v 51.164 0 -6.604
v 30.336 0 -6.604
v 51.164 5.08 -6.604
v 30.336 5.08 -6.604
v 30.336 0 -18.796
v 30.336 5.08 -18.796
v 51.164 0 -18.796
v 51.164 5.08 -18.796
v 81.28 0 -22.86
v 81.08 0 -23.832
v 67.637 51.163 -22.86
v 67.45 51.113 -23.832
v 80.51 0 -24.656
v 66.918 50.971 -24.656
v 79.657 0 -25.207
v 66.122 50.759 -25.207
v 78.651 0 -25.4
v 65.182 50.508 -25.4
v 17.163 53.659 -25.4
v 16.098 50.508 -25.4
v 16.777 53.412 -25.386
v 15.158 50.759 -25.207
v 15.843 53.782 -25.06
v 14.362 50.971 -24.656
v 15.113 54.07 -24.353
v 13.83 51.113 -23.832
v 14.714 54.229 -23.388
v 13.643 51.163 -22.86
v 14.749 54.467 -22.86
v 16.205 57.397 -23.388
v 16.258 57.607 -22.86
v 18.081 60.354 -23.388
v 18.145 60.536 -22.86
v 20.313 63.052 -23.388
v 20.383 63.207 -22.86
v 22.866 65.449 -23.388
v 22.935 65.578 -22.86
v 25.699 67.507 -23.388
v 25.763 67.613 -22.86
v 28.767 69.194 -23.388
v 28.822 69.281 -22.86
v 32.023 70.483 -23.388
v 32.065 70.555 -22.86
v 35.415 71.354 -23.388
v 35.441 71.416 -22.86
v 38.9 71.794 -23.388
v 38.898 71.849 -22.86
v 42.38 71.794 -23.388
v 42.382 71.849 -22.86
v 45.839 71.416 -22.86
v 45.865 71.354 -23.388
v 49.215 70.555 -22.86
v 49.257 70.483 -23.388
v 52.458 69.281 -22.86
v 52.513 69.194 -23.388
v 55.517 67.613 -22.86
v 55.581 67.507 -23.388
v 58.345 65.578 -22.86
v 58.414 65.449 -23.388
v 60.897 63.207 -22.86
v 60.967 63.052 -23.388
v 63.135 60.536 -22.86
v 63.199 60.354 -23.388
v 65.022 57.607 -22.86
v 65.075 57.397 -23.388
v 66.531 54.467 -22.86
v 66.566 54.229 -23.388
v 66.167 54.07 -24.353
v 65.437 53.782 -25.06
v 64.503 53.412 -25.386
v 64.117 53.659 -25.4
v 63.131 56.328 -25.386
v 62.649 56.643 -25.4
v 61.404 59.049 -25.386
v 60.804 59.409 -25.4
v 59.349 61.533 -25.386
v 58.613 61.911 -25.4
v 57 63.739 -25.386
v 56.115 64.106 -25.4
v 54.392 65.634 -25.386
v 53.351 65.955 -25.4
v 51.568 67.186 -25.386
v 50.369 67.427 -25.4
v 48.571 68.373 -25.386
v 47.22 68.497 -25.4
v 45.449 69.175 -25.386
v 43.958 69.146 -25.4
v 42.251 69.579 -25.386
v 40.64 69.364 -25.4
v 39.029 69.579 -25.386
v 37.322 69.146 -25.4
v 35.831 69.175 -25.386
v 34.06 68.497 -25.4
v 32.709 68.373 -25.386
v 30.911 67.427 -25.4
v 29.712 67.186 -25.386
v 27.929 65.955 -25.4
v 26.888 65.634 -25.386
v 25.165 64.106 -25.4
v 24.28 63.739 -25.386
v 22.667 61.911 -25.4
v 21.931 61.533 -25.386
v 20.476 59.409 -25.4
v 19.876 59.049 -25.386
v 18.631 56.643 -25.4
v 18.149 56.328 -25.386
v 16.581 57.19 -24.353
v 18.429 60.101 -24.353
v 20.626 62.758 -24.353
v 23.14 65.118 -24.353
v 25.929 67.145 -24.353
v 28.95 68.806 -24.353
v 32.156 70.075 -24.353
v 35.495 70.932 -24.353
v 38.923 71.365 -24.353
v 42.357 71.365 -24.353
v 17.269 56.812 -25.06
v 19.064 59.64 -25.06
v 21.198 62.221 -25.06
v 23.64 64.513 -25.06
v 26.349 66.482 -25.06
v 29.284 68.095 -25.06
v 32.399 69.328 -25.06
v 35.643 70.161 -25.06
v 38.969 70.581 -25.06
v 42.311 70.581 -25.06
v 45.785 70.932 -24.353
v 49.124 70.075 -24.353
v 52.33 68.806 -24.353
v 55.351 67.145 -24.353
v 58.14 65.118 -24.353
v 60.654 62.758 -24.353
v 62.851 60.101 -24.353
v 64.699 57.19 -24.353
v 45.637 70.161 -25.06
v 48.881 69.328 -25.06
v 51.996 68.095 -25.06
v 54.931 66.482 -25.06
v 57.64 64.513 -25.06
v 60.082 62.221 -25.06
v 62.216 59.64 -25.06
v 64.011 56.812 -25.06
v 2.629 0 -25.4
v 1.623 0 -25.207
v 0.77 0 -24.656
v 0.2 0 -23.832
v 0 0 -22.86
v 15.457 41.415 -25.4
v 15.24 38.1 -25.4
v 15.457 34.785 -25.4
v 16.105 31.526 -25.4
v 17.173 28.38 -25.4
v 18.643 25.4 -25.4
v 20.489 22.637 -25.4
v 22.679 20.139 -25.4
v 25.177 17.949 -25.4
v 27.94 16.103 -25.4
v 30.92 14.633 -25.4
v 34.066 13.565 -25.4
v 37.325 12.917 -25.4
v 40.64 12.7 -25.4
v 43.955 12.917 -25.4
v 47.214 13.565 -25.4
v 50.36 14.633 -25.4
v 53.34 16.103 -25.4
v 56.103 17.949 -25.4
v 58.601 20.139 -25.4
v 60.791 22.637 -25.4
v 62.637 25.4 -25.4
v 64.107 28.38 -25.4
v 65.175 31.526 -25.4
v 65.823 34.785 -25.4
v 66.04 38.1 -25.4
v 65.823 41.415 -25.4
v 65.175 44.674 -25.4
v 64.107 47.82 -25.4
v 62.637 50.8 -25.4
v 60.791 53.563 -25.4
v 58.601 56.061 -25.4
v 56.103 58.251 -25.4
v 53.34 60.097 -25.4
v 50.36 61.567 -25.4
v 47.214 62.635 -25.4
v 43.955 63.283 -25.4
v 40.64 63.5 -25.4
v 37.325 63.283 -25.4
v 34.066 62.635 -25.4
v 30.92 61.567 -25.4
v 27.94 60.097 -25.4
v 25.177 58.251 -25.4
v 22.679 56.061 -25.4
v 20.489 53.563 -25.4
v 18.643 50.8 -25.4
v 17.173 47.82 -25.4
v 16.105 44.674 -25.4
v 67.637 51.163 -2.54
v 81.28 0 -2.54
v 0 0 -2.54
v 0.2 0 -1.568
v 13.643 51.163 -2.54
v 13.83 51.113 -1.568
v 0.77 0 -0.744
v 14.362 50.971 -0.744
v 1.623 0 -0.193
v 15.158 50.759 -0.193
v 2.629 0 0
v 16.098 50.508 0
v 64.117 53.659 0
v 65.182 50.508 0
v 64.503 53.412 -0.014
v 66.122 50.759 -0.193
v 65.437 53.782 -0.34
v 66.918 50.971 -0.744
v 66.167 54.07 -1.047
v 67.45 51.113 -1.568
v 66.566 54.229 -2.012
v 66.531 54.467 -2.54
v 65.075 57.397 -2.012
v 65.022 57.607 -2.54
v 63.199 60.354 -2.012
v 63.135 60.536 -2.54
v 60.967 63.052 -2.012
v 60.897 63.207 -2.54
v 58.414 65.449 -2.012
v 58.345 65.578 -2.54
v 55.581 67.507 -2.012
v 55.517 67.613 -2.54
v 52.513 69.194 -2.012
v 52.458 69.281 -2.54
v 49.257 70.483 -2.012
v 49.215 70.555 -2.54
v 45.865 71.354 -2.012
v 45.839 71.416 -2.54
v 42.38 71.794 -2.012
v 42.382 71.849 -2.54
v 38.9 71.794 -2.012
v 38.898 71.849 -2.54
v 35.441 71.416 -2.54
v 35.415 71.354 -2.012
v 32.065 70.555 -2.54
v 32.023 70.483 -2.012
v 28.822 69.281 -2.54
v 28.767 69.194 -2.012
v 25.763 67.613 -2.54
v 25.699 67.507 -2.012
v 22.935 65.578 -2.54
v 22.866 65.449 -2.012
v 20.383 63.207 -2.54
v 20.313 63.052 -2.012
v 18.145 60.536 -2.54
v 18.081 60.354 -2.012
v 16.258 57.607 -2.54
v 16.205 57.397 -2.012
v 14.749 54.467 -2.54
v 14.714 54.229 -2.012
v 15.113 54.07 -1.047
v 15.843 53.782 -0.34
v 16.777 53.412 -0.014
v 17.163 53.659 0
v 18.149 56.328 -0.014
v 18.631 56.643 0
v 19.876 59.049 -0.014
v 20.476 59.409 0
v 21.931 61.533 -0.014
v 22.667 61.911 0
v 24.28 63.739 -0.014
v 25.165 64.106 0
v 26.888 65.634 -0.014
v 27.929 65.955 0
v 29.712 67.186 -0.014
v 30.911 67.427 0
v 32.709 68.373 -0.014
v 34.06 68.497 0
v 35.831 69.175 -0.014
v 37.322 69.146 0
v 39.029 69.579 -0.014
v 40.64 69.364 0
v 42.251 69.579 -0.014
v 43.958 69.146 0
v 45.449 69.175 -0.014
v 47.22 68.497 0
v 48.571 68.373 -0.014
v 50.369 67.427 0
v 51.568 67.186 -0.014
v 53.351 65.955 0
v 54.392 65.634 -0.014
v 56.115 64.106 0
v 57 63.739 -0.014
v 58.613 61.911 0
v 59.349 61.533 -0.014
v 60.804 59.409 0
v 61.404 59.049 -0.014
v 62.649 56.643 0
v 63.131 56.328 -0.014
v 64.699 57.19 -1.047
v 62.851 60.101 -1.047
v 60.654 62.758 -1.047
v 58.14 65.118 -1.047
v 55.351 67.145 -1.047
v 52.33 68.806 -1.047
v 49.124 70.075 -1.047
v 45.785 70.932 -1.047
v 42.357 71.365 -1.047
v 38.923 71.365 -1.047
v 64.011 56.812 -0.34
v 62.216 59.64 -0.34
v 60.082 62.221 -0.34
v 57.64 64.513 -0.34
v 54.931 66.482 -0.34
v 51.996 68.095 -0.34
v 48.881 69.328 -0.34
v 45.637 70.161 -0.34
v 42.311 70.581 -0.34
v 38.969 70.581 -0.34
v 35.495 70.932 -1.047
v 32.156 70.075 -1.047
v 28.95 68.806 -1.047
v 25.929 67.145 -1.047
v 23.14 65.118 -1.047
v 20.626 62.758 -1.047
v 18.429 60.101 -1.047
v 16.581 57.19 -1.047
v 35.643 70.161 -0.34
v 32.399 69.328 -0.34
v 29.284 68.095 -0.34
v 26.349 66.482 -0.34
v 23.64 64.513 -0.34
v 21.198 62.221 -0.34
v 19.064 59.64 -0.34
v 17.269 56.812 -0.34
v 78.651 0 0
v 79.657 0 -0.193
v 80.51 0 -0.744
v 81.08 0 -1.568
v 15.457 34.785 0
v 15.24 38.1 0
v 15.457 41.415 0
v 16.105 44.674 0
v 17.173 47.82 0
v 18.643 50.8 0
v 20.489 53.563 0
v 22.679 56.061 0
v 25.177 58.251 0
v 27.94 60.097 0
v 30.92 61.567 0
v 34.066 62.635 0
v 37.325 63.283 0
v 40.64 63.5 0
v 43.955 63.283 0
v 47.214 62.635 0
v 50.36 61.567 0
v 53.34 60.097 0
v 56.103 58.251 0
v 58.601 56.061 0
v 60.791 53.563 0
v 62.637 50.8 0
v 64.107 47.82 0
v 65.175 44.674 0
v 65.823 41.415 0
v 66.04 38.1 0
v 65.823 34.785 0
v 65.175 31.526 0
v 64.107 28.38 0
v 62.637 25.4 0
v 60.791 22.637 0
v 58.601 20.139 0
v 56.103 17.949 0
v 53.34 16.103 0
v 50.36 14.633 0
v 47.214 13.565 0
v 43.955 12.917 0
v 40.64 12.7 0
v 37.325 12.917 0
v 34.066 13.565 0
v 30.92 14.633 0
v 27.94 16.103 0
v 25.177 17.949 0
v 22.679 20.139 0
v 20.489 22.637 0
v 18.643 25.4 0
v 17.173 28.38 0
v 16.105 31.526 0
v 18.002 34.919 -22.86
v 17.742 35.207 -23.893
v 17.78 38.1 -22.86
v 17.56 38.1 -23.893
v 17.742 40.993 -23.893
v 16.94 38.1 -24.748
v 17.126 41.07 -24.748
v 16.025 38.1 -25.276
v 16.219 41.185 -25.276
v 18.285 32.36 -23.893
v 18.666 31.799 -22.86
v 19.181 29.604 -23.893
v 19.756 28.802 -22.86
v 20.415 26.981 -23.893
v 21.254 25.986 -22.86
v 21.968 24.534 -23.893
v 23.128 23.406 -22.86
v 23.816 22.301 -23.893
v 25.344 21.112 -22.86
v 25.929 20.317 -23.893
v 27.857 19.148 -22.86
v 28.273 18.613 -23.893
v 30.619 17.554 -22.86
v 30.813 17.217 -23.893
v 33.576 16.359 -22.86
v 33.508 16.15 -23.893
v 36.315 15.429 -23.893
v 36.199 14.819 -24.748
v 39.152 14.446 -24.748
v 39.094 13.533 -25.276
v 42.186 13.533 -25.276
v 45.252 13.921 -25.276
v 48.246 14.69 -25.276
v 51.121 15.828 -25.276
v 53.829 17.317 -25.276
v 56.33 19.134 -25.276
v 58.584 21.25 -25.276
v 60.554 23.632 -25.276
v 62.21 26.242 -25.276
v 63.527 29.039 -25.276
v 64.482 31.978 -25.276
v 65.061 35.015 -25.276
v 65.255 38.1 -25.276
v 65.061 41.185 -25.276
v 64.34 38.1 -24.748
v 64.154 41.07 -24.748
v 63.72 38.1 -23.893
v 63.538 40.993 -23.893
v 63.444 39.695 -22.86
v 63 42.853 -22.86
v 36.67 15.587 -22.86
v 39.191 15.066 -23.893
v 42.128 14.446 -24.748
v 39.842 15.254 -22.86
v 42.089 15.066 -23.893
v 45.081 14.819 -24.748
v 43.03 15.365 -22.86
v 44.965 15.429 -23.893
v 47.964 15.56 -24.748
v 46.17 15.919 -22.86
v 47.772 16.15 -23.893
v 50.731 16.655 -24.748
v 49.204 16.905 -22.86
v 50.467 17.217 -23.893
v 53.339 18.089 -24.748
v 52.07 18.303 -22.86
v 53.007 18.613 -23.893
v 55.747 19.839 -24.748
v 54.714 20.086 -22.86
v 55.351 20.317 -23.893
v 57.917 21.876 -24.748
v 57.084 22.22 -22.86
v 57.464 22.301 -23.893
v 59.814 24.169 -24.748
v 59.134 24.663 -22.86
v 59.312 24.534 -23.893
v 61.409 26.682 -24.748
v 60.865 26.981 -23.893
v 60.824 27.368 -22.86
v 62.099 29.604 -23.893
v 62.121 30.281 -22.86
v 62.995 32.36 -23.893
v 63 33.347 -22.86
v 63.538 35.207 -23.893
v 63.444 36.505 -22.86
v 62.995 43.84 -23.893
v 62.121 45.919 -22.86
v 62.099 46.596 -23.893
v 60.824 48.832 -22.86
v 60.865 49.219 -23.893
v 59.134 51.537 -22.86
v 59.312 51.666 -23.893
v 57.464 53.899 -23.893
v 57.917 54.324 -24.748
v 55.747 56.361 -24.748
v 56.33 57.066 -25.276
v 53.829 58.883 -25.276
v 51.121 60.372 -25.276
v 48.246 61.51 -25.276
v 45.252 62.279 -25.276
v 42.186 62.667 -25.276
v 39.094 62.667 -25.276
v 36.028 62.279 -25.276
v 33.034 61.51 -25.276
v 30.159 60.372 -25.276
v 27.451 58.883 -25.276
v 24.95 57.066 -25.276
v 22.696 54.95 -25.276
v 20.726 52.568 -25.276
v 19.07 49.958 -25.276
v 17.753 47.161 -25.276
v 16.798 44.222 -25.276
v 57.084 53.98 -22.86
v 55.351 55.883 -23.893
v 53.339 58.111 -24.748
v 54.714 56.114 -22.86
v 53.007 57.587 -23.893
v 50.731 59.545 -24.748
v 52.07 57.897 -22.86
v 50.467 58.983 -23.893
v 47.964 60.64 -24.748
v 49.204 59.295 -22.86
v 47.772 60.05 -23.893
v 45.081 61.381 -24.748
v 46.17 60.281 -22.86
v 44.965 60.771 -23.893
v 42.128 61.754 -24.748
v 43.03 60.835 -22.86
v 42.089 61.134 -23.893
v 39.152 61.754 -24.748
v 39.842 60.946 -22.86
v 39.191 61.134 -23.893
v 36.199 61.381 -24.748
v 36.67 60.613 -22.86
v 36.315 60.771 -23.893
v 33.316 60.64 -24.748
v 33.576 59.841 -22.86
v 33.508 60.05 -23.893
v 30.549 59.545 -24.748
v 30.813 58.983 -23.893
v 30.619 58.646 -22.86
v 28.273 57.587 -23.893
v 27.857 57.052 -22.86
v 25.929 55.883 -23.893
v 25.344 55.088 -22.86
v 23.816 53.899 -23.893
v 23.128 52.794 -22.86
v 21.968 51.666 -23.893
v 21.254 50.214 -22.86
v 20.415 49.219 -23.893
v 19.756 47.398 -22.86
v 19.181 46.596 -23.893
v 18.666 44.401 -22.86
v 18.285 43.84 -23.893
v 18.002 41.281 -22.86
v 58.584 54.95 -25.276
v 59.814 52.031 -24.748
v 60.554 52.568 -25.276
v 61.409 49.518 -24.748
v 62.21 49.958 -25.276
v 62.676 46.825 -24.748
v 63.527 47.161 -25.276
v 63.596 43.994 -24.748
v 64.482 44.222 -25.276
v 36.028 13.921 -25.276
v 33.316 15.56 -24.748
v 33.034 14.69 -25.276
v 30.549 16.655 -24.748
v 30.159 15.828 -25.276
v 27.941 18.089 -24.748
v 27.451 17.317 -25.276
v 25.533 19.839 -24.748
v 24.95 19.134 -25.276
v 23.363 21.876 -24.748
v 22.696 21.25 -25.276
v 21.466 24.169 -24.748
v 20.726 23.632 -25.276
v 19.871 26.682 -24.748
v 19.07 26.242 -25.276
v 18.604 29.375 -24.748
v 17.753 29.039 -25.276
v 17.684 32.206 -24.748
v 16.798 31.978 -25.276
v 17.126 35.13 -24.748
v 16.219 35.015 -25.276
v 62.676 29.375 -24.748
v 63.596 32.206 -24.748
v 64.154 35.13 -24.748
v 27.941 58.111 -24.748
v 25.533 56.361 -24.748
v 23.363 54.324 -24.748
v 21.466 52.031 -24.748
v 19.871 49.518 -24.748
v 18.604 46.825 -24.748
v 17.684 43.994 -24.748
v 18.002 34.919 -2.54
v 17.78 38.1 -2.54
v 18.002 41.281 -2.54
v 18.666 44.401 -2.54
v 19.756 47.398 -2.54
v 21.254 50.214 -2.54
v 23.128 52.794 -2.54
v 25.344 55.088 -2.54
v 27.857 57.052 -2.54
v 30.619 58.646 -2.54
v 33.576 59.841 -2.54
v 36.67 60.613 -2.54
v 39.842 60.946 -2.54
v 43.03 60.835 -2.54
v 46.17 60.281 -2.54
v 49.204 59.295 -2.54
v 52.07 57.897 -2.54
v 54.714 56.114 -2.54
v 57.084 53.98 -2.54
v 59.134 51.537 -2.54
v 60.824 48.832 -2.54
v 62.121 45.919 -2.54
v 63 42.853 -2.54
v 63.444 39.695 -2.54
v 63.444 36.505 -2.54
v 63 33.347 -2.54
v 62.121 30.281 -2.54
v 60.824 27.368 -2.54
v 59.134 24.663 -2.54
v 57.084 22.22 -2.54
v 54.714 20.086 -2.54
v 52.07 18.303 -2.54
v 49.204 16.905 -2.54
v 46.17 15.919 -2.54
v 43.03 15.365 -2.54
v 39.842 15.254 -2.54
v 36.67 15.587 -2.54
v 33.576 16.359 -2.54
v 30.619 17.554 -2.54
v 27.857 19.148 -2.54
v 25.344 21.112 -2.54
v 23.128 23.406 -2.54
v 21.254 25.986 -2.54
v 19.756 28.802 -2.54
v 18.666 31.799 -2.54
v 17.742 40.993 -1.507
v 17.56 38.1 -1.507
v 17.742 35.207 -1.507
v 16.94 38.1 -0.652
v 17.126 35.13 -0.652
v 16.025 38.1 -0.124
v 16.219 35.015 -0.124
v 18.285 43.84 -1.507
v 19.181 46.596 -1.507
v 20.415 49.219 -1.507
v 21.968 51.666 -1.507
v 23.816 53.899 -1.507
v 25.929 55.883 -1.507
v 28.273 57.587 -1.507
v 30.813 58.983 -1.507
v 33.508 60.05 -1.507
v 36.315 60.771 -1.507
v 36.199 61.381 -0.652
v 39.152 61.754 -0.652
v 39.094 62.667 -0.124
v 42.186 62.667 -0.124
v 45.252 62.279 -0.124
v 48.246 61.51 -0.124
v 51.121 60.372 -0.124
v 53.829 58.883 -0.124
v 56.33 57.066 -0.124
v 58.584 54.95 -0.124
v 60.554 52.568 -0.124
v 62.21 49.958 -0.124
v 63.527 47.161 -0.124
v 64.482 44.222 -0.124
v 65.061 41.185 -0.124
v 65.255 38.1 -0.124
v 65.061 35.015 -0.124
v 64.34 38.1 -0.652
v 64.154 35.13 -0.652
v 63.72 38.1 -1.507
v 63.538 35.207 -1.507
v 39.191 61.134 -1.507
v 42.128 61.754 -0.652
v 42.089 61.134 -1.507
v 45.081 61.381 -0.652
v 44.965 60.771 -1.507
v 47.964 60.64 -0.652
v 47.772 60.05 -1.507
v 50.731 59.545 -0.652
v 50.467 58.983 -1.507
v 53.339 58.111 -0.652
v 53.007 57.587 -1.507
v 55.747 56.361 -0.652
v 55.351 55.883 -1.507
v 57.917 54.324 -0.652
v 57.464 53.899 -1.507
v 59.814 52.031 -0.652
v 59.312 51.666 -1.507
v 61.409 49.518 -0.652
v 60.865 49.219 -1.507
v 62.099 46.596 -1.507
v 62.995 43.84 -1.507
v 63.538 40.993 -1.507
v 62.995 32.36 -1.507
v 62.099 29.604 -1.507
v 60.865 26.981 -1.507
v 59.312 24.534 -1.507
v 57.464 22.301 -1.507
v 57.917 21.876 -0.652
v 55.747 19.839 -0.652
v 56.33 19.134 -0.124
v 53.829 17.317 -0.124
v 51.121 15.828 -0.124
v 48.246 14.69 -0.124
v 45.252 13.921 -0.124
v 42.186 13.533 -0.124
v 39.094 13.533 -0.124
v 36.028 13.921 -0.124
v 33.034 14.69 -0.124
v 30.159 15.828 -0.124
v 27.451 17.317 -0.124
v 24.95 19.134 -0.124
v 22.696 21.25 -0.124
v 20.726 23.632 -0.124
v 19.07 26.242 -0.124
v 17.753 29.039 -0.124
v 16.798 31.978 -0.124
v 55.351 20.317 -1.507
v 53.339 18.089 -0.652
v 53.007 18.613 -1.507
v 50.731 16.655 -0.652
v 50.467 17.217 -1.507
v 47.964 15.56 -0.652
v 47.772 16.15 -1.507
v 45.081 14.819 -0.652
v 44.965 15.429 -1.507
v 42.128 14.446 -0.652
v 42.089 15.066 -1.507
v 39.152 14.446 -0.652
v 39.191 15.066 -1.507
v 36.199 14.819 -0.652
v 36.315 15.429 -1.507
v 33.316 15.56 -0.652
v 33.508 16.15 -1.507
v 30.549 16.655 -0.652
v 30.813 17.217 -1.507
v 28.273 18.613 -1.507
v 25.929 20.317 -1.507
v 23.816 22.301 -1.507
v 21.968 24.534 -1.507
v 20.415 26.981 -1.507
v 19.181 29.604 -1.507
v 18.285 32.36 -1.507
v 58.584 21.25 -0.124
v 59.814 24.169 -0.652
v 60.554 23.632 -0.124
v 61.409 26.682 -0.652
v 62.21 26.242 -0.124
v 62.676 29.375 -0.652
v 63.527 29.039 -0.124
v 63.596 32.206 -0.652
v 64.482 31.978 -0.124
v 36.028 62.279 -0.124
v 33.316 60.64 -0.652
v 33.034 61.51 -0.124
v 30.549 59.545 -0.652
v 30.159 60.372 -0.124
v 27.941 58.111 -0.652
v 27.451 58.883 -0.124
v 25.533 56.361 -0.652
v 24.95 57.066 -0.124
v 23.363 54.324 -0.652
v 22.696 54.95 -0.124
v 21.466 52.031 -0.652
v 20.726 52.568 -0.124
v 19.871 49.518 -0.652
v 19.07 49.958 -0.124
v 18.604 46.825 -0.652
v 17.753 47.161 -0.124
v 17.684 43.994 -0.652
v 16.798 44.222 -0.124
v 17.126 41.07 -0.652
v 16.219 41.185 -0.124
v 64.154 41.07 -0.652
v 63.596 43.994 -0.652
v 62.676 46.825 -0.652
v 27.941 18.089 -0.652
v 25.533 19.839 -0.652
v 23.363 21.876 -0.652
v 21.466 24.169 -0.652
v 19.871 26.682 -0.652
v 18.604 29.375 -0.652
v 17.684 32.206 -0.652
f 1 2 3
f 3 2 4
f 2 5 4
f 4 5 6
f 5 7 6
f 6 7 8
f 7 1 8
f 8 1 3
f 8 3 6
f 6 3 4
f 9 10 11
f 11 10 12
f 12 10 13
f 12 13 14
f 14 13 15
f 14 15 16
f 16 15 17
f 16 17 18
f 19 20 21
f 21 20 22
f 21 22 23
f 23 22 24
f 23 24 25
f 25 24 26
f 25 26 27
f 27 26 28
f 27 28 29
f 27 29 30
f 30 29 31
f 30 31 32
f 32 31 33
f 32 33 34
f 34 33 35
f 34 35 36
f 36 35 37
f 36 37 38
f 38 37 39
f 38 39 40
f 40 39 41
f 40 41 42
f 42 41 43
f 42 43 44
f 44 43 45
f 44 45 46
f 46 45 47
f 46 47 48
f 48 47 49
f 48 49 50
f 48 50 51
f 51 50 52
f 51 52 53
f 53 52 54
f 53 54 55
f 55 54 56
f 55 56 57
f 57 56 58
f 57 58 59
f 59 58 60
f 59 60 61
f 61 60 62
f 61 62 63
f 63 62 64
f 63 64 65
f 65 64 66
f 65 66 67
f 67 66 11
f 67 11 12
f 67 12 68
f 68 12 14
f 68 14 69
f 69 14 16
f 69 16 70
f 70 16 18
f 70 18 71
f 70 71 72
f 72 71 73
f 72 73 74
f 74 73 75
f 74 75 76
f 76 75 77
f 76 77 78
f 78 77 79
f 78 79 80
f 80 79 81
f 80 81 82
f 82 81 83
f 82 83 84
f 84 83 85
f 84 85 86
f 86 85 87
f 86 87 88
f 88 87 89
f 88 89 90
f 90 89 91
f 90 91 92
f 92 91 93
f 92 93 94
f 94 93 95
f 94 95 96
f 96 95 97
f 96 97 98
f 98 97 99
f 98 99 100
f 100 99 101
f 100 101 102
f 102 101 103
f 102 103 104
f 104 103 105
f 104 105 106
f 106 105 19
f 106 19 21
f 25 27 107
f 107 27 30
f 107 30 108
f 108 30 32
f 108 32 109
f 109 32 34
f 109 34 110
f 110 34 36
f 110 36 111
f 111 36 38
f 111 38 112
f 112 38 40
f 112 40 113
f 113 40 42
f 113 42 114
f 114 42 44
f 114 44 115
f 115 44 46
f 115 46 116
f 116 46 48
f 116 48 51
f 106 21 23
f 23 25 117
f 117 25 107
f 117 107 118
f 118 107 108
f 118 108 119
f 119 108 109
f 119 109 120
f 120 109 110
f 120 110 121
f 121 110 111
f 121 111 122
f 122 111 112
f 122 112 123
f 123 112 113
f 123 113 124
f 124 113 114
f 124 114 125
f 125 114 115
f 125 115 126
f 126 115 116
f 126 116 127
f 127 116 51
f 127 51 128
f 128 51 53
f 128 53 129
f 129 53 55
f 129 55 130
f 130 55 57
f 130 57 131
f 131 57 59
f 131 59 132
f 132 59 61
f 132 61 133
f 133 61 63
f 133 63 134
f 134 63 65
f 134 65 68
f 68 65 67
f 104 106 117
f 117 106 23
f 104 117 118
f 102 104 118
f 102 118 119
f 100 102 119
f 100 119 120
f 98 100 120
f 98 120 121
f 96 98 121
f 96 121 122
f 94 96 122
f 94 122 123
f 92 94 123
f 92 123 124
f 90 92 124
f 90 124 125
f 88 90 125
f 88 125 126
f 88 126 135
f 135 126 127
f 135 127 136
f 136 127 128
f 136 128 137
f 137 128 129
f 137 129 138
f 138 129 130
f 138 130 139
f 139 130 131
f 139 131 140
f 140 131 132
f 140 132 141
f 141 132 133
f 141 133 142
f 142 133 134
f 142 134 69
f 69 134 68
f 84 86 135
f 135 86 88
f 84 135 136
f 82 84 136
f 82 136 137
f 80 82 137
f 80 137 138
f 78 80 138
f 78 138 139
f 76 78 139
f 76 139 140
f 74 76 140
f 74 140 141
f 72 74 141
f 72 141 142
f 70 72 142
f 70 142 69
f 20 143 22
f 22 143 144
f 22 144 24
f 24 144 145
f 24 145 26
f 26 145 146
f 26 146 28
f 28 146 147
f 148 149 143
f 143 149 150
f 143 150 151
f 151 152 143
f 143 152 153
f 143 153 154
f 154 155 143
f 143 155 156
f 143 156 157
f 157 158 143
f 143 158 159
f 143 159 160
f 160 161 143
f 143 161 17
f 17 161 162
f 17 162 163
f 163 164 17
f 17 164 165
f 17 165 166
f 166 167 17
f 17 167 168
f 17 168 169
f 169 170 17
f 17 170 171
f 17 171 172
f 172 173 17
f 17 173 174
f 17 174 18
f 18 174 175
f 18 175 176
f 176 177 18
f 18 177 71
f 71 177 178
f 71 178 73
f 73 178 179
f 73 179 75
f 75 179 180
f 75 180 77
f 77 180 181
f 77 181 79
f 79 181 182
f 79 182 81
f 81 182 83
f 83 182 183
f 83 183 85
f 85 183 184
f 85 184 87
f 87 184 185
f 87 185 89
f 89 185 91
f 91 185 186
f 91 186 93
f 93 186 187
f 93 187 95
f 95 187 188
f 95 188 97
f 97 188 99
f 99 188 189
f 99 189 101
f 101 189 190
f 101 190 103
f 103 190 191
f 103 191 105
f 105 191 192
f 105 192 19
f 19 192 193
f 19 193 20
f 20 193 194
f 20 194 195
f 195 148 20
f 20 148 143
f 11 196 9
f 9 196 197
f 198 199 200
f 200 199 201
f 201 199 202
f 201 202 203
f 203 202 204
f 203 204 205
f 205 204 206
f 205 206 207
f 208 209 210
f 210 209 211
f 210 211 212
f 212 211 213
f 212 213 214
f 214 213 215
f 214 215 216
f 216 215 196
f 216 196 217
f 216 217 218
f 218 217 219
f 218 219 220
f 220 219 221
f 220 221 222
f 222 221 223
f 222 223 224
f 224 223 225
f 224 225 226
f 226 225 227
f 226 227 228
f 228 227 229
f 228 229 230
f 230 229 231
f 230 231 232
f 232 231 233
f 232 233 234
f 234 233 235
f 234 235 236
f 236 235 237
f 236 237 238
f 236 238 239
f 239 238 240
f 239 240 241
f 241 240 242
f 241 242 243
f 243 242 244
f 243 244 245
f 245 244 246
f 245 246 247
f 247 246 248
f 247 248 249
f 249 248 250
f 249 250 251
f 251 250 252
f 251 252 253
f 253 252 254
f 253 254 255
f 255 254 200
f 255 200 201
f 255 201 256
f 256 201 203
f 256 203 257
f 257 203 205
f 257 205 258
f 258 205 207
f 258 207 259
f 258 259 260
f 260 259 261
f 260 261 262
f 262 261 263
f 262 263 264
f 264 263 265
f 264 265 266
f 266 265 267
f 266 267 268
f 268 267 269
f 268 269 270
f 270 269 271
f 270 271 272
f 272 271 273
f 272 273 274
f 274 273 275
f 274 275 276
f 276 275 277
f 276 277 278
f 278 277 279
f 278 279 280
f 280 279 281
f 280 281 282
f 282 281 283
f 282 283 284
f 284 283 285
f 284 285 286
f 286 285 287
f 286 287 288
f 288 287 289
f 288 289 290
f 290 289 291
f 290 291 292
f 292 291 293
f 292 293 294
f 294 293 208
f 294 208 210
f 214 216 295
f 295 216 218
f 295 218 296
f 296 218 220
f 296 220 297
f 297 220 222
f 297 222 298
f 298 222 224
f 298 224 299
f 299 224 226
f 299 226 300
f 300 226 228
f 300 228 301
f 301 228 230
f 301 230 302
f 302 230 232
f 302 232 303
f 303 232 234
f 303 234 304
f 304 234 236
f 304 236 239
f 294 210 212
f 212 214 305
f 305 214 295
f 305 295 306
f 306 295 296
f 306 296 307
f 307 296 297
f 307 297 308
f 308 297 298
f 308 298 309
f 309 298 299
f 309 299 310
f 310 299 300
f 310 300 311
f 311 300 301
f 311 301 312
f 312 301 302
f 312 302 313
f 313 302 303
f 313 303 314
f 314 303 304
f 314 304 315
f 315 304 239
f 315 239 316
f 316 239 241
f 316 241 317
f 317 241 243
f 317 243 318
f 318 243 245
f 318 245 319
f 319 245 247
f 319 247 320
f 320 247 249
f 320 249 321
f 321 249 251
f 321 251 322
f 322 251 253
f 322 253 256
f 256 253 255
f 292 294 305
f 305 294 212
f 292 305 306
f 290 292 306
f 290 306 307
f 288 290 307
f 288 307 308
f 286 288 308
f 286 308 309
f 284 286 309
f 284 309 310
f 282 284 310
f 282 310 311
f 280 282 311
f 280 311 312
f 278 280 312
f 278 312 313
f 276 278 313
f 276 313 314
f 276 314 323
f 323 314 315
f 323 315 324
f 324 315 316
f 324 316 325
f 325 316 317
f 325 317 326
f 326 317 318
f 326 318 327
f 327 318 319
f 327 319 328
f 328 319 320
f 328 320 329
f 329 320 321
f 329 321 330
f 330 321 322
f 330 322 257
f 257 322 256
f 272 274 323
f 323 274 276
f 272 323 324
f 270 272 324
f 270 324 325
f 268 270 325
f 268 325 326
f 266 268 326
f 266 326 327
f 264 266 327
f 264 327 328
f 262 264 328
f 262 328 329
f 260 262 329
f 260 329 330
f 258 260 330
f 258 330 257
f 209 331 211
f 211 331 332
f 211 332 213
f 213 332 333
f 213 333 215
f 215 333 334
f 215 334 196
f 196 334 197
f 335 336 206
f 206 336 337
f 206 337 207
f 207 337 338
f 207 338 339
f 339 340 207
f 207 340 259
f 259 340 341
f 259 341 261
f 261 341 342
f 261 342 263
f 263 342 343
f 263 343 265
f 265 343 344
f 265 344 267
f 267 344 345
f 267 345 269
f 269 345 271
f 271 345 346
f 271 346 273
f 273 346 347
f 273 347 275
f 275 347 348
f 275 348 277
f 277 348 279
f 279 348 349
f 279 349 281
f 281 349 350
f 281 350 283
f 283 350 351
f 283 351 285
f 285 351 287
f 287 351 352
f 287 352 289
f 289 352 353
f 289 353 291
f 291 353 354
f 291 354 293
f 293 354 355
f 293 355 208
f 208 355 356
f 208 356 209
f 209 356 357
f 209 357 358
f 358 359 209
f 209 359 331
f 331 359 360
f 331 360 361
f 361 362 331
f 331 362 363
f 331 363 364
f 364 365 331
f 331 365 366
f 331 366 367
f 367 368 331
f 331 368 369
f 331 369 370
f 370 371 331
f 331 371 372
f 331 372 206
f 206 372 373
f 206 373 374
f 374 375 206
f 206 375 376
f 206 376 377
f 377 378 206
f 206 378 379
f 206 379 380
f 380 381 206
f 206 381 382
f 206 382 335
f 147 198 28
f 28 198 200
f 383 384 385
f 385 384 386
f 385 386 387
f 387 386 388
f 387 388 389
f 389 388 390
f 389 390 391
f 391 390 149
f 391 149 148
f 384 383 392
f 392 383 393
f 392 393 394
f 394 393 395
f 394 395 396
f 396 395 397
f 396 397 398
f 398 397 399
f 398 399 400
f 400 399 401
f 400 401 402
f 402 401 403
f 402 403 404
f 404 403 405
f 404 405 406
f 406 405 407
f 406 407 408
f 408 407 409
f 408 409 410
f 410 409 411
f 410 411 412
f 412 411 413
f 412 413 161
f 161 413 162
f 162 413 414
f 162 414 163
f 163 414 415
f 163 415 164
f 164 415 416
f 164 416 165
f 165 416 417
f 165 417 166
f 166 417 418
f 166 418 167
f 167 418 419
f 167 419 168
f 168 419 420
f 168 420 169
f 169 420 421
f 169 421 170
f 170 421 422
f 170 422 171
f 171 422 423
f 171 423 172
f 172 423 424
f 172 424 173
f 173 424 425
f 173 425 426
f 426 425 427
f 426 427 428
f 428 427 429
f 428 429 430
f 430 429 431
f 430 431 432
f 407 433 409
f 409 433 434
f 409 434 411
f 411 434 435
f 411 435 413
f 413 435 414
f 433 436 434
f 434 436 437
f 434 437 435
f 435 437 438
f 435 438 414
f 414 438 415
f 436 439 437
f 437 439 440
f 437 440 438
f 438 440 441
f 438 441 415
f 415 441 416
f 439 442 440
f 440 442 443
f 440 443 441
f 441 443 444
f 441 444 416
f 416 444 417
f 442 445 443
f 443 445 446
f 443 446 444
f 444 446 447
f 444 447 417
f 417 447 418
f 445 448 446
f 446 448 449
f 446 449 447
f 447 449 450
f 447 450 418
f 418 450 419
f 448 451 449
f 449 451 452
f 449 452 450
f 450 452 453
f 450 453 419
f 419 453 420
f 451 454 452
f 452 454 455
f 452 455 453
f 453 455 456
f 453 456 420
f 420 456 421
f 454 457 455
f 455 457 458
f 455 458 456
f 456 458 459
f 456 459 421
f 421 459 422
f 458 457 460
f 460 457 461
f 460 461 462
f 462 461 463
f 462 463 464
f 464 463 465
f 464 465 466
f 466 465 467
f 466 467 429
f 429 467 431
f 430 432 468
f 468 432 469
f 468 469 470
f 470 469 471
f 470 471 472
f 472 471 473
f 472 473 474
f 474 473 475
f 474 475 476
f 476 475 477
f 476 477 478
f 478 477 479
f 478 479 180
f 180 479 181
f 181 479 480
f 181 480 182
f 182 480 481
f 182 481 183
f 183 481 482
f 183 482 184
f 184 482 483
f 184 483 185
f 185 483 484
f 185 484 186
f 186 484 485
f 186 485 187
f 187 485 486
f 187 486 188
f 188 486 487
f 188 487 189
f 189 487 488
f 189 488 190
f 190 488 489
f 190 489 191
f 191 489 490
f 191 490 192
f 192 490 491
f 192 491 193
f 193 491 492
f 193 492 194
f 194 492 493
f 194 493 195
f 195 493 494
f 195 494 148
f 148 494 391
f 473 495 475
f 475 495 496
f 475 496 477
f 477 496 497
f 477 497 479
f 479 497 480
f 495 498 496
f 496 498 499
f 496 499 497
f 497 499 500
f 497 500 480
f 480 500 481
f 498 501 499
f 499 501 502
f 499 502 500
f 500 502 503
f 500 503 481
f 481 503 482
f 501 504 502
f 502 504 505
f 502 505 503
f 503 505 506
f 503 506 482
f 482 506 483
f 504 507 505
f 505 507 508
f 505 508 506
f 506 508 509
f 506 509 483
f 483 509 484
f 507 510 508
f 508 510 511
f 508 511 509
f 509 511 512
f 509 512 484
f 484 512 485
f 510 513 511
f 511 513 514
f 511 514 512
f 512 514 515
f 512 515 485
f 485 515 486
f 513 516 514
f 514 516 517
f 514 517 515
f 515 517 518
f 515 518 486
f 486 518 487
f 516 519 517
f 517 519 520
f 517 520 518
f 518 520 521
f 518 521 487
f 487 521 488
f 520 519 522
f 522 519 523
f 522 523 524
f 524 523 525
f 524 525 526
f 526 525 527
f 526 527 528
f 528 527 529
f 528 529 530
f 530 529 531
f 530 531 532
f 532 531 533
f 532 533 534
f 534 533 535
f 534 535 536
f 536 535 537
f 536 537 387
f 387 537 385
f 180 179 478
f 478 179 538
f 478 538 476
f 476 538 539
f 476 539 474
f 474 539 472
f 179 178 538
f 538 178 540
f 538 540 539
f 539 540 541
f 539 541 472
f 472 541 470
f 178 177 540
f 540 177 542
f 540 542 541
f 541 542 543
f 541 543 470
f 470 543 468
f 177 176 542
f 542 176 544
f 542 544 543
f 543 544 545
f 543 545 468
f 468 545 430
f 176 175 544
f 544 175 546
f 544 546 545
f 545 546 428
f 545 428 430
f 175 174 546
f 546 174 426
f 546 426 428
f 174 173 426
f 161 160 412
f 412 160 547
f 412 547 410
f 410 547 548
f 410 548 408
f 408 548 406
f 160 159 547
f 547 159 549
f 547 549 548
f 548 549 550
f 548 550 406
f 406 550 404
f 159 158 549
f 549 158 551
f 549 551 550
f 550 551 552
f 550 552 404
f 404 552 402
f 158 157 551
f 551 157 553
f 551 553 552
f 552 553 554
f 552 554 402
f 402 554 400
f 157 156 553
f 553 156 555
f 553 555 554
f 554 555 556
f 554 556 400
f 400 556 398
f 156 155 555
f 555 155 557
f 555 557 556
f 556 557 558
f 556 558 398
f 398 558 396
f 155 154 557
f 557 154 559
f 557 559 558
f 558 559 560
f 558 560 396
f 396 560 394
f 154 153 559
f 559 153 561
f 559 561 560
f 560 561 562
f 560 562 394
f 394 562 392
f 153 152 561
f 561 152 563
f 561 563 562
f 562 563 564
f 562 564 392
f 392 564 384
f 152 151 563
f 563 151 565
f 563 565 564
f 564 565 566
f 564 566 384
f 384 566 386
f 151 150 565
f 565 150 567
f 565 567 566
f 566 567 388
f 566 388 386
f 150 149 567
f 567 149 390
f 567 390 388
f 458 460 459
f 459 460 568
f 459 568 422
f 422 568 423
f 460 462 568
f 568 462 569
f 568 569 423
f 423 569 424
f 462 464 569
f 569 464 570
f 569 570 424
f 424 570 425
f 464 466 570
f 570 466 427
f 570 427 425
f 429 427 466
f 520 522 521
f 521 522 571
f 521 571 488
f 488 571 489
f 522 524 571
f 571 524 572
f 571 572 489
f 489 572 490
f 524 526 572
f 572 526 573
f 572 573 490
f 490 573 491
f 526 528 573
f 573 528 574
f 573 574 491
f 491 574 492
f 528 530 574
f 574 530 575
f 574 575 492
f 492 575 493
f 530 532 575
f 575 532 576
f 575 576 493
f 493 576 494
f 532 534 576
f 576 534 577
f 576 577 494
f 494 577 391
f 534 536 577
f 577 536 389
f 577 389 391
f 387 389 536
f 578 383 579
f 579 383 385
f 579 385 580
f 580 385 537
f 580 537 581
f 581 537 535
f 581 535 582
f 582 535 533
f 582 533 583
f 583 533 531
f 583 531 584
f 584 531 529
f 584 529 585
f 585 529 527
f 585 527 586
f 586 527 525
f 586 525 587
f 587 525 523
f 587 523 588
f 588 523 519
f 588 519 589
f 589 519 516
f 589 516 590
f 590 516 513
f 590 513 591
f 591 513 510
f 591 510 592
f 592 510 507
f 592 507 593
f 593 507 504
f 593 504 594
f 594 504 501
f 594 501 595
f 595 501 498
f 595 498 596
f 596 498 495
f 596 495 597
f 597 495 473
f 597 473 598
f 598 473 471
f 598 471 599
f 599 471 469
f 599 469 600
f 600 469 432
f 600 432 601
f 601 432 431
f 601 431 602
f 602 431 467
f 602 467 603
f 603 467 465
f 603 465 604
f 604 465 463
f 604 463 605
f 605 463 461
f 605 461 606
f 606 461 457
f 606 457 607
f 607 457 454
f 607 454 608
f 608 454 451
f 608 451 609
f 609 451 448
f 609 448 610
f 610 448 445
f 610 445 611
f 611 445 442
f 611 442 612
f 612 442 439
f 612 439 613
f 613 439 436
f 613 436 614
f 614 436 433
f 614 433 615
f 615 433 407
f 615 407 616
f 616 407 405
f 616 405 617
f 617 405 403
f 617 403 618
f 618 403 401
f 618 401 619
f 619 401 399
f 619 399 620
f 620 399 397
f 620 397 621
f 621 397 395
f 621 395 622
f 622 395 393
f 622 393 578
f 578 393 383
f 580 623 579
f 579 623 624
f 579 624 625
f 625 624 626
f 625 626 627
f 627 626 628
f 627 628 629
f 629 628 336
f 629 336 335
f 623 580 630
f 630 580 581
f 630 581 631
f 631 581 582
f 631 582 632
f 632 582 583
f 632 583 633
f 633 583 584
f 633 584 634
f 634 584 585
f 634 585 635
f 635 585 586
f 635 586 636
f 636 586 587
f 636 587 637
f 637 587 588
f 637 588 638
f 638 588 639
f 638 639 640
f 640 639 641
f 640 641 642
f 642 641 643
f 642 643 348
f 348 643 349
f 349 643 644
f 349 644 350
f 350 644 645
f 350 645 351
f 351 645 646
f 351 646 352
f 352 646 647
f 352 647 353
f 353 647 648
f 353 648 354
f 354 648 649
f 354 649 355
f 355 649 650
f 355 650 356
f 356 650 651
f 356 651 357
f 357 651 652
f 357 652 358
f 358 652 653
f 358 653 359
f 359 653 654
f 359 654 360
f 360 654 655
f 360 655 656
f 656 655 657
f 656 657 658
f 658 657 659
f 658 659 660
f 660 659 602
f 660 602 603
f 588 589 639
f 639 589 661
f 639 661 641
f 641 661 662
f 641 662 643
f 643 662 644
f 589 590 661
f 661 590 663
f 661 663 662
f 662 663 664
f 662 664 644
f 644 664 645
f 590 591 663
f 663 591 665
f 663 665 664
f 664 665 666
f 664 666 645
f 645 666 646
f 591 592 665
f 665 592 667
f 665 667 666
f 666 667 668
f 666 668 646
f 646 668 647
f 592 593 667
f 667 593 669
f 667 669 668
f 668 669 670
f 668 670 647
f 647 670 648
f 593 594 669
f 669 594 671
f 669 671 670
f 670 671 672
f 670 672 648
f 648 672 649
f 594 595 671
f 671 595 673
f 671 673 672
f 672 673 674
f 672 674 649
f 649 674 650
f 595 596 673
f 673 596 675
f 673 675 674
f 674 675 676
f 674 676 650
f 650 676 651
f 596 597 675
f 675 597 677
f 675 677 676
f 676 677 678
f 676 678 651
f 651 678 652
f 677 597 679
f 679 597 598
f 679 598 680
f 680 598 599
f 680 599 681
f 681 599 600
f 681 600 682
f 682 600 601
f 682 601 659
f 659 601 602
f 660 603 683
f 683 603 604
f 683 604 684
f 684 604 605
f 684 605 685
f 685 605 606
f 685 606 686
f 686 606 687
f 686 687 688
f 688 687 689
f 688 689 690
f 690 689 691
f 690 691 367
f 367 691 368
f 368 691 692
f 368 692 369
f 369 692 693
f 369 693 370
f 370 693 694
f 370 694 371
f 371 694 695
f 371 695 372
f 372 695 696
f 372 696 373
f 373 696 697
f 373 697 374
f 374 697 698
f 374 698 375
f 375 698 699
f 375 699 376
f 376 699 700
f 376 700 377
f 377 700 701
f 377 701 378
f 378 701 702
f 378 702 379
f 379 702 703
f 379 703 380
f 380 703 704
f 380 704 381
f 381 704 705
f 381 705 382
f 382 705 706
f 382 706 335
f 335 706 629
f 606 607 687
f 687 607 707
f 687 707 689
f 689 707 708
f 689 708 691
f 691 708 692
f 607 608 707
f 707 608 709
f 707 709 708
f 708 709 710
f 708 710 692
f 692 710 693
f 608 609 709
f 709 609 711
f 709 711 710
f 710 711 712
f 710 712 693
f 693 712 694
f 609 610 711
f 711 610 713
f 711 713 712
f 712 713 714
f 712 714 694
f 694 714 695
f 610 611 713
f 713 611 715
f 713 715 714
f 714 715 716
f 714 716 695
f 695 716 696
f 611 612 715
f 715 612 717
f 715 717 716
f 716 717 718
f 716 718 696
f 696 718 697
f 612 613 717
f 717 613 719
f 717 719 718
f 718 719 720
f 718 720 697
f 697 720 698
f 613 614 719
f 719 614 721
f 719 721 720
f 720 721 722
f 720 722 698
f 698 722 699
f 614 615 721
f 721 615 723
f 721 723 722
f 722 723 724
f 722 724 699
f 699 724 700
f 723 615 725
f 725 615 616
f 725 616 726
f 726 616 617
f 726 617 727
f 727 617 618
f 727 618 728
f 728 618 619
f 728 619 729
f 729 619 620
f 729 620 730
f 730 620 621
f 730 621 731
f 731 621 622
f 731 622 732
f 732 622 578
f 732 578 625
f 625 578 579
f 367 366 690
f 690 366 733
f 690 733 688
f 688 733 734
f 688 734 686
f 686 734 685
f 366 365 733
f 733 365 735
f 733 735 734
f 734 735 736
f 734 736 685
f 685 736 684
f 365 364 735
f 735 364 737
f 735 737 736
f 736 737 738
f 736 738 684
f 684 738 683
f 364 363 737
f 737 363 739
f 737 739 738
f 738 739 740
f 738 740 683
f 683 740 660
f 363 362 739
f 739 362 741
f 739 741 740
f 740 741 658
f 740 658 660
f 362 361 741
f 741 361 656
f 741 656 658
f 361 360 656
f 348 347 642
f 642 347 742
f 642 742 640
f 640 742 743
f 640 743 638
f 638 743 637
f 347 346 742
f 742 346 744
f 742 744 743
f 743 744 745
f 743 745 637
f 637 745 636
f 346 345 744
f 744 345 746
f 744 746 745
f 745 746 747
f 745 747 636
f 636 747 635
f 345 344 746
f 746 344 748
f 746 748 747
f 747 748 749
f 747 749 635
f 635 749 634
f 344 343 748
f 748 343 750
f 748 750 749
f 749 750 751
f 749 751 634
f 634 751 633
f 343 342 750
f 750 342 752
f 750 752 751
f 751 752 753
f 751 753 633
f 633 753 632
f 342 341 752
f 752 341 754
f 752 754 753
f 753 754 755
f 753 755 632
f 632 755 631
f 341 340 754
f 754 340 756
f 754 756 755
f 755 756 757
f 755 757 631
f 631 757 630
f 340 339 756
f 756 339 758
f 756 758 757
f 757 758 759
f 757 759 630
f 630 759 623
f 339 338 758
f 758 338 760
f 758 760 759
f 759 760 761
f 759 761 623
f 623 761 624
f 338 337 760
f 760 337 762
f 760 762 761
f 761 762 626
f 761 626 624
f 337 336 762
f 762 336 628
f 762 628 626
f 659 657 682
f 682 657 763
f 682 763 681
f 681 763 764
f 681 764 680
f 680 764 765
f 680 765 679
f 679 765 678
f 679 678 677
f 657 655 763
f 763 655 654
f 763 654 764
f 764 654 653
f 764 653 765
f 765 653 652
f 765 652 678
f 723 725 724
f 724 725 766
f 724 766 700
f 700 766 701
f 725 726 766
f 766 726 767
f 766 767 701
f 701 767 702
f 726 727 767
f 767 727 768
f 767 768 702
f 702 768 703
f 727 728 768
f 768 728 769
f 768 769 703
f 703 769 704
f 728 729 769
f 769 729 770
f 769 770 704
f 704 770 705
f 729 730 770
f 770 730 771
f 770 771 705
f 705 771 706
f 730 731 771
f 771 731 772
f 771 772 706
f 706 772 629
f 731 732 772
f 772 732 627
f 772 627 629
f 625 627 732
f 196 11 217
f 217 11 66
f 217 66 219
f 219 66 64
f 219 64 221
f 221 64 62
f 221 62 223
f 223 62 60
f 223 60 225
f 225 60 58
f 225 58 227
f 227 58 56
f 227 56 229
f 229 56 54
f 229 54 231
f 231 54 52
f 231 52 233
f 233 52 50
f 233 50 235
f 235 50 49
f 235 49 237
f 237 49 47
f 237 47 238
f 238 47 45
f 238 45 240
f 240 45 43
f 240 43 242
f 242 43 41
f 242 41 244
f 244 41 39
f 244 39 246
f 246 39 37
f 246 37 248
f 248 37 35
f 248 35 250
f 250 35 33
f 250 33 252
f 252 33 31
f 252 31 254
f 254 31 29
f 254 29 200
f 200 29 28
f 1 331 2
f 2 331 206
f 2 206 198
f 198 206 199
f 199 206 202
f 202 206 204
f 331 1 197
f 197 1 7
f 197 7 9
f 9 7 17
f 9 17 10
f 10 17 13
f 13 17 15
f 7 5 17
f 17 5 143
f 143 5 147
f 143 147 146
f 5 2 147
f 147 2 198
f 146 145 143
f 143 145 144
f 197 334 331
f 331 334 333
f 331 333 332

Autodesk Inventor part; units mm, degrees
ref_plane "YZ Plane" through (0, 0, 0) normal (1, 0, 0) x (0, 1, 0)
ref_plane "XZ Plane" through (0, 0, 0) normal (0, 1, 0) x (-1, 0, 0)
ref_plane "XY Plane" through (0, 0, 0) normal (0, 0, 1) x (1, 0, 0)
sketch "Sketch2" plane through (0, 0, 0) normal (0, 1, 0) x (-1, 0, 0)
  line L0 (0, 0) -> (-81.28, 0)
  line L1 (-81.28, 0) -> (-81.28, -25.4)
  line L2 (-81.28, -25.4) -> (0, -25.4)
  line L3 (0, -25.4) -> (0, 0)
  dimension "d2" = 81.28
  dimension "d3" = 25.4
extrude "Extrusion1" add sketch "Sketch2" along normal blind 76.2
sketch "Sketch3" plane through (81.28, 0, -25.4) normal (0, 0, -1) x (-1, 0, 0)
  line L0 (81.28, 76.2) -> (0, 76.2) projected
  line L1 (40.64, 76.2) -> (40.64, 0)
  line L2 (0, 0) -> (0, 76.2) projected
  line L3 (0, 38.1) -> (81.28, 38.1)
  line L4 (81.28, 0) -> (81.28, 76.2) projected
  circle A0 centre (40.64, 38.1) radius 22.86
  dimension "d6" = 45.72
extrude "Extrusion2" cut sketch "Sketch3" against normal blind 25.4 contours A0 L3 L1 | L1 L3 A0 | A0 L1 L3 | L1 A0 L3
chamfer "Chamfer1" distance 20.32 distance2 76.2 1 edges at (81.28, 76.2, -12.7) measured on face at (54.1867, 76.2, -8.4667)
chamfer "Chamfer2" distance 20.32 distance2 76.2 1 edges at (0, 76.2, -12.7) measured on face at (40.6403, 76.2, -16.9333)
fillet "Fillet1" radius 27.94 2 edges at (60.9605, 76.2, -12.7) (20.3195, 76.2, -12.7)
fillet "Fillet2" radius 2.54 8 edges at (63.5, 38.1, 0) (63.5, 38.1, -25.4) (74.4578, 25.5841, 0) (6.8222, 25.5841, 0) (40.64, 71.9079, 0) (6.8222, 25.5841, -25.4) (74.4578, 25.5841, -25.4) (40.64, 71.9079, -25.4)
sketch "Sketch5" plane through (0, 0, 0) normal (0, -1, 0) x (1, 0, 0)
  line L0 (2.6288, 0) -> (78.6512, 0) projected
  line L1 (40.64, 0) -> (40.64, -25.4)
  line L2 (78.6512, -25.4) -> (2.6288, -25.4) projected
  line L3 (0, -12.7) -> (81.4991, -12.7)
  line L4 (40.7495, -12.7) -> (51.1635, -12.7)
  line L5 (51.1635, -12.7) -> (51.1635, -6.604)
  line L6 (51.1635, -6.604) -> (30.3355, -6.604)
  line L7 (30.3355, -6.604) -> (30.3355, -18.796)
  line L8 (30.3355, -18.796) -> (51.1635, -18.796)
  line L9 (51.1635, -18.796) -> (51.1635, -12.7)
  point P0 (0, 0)
  dimension "d23" = 10.414
  dimension "d24" = 6.096
  dimension "d25" = 20.828
  dimension "d26" = 12.192
extrude "Extrusion4" cut sketch "Sketch5" against normal blind 5.08
properties part number "CapStone Handle"
